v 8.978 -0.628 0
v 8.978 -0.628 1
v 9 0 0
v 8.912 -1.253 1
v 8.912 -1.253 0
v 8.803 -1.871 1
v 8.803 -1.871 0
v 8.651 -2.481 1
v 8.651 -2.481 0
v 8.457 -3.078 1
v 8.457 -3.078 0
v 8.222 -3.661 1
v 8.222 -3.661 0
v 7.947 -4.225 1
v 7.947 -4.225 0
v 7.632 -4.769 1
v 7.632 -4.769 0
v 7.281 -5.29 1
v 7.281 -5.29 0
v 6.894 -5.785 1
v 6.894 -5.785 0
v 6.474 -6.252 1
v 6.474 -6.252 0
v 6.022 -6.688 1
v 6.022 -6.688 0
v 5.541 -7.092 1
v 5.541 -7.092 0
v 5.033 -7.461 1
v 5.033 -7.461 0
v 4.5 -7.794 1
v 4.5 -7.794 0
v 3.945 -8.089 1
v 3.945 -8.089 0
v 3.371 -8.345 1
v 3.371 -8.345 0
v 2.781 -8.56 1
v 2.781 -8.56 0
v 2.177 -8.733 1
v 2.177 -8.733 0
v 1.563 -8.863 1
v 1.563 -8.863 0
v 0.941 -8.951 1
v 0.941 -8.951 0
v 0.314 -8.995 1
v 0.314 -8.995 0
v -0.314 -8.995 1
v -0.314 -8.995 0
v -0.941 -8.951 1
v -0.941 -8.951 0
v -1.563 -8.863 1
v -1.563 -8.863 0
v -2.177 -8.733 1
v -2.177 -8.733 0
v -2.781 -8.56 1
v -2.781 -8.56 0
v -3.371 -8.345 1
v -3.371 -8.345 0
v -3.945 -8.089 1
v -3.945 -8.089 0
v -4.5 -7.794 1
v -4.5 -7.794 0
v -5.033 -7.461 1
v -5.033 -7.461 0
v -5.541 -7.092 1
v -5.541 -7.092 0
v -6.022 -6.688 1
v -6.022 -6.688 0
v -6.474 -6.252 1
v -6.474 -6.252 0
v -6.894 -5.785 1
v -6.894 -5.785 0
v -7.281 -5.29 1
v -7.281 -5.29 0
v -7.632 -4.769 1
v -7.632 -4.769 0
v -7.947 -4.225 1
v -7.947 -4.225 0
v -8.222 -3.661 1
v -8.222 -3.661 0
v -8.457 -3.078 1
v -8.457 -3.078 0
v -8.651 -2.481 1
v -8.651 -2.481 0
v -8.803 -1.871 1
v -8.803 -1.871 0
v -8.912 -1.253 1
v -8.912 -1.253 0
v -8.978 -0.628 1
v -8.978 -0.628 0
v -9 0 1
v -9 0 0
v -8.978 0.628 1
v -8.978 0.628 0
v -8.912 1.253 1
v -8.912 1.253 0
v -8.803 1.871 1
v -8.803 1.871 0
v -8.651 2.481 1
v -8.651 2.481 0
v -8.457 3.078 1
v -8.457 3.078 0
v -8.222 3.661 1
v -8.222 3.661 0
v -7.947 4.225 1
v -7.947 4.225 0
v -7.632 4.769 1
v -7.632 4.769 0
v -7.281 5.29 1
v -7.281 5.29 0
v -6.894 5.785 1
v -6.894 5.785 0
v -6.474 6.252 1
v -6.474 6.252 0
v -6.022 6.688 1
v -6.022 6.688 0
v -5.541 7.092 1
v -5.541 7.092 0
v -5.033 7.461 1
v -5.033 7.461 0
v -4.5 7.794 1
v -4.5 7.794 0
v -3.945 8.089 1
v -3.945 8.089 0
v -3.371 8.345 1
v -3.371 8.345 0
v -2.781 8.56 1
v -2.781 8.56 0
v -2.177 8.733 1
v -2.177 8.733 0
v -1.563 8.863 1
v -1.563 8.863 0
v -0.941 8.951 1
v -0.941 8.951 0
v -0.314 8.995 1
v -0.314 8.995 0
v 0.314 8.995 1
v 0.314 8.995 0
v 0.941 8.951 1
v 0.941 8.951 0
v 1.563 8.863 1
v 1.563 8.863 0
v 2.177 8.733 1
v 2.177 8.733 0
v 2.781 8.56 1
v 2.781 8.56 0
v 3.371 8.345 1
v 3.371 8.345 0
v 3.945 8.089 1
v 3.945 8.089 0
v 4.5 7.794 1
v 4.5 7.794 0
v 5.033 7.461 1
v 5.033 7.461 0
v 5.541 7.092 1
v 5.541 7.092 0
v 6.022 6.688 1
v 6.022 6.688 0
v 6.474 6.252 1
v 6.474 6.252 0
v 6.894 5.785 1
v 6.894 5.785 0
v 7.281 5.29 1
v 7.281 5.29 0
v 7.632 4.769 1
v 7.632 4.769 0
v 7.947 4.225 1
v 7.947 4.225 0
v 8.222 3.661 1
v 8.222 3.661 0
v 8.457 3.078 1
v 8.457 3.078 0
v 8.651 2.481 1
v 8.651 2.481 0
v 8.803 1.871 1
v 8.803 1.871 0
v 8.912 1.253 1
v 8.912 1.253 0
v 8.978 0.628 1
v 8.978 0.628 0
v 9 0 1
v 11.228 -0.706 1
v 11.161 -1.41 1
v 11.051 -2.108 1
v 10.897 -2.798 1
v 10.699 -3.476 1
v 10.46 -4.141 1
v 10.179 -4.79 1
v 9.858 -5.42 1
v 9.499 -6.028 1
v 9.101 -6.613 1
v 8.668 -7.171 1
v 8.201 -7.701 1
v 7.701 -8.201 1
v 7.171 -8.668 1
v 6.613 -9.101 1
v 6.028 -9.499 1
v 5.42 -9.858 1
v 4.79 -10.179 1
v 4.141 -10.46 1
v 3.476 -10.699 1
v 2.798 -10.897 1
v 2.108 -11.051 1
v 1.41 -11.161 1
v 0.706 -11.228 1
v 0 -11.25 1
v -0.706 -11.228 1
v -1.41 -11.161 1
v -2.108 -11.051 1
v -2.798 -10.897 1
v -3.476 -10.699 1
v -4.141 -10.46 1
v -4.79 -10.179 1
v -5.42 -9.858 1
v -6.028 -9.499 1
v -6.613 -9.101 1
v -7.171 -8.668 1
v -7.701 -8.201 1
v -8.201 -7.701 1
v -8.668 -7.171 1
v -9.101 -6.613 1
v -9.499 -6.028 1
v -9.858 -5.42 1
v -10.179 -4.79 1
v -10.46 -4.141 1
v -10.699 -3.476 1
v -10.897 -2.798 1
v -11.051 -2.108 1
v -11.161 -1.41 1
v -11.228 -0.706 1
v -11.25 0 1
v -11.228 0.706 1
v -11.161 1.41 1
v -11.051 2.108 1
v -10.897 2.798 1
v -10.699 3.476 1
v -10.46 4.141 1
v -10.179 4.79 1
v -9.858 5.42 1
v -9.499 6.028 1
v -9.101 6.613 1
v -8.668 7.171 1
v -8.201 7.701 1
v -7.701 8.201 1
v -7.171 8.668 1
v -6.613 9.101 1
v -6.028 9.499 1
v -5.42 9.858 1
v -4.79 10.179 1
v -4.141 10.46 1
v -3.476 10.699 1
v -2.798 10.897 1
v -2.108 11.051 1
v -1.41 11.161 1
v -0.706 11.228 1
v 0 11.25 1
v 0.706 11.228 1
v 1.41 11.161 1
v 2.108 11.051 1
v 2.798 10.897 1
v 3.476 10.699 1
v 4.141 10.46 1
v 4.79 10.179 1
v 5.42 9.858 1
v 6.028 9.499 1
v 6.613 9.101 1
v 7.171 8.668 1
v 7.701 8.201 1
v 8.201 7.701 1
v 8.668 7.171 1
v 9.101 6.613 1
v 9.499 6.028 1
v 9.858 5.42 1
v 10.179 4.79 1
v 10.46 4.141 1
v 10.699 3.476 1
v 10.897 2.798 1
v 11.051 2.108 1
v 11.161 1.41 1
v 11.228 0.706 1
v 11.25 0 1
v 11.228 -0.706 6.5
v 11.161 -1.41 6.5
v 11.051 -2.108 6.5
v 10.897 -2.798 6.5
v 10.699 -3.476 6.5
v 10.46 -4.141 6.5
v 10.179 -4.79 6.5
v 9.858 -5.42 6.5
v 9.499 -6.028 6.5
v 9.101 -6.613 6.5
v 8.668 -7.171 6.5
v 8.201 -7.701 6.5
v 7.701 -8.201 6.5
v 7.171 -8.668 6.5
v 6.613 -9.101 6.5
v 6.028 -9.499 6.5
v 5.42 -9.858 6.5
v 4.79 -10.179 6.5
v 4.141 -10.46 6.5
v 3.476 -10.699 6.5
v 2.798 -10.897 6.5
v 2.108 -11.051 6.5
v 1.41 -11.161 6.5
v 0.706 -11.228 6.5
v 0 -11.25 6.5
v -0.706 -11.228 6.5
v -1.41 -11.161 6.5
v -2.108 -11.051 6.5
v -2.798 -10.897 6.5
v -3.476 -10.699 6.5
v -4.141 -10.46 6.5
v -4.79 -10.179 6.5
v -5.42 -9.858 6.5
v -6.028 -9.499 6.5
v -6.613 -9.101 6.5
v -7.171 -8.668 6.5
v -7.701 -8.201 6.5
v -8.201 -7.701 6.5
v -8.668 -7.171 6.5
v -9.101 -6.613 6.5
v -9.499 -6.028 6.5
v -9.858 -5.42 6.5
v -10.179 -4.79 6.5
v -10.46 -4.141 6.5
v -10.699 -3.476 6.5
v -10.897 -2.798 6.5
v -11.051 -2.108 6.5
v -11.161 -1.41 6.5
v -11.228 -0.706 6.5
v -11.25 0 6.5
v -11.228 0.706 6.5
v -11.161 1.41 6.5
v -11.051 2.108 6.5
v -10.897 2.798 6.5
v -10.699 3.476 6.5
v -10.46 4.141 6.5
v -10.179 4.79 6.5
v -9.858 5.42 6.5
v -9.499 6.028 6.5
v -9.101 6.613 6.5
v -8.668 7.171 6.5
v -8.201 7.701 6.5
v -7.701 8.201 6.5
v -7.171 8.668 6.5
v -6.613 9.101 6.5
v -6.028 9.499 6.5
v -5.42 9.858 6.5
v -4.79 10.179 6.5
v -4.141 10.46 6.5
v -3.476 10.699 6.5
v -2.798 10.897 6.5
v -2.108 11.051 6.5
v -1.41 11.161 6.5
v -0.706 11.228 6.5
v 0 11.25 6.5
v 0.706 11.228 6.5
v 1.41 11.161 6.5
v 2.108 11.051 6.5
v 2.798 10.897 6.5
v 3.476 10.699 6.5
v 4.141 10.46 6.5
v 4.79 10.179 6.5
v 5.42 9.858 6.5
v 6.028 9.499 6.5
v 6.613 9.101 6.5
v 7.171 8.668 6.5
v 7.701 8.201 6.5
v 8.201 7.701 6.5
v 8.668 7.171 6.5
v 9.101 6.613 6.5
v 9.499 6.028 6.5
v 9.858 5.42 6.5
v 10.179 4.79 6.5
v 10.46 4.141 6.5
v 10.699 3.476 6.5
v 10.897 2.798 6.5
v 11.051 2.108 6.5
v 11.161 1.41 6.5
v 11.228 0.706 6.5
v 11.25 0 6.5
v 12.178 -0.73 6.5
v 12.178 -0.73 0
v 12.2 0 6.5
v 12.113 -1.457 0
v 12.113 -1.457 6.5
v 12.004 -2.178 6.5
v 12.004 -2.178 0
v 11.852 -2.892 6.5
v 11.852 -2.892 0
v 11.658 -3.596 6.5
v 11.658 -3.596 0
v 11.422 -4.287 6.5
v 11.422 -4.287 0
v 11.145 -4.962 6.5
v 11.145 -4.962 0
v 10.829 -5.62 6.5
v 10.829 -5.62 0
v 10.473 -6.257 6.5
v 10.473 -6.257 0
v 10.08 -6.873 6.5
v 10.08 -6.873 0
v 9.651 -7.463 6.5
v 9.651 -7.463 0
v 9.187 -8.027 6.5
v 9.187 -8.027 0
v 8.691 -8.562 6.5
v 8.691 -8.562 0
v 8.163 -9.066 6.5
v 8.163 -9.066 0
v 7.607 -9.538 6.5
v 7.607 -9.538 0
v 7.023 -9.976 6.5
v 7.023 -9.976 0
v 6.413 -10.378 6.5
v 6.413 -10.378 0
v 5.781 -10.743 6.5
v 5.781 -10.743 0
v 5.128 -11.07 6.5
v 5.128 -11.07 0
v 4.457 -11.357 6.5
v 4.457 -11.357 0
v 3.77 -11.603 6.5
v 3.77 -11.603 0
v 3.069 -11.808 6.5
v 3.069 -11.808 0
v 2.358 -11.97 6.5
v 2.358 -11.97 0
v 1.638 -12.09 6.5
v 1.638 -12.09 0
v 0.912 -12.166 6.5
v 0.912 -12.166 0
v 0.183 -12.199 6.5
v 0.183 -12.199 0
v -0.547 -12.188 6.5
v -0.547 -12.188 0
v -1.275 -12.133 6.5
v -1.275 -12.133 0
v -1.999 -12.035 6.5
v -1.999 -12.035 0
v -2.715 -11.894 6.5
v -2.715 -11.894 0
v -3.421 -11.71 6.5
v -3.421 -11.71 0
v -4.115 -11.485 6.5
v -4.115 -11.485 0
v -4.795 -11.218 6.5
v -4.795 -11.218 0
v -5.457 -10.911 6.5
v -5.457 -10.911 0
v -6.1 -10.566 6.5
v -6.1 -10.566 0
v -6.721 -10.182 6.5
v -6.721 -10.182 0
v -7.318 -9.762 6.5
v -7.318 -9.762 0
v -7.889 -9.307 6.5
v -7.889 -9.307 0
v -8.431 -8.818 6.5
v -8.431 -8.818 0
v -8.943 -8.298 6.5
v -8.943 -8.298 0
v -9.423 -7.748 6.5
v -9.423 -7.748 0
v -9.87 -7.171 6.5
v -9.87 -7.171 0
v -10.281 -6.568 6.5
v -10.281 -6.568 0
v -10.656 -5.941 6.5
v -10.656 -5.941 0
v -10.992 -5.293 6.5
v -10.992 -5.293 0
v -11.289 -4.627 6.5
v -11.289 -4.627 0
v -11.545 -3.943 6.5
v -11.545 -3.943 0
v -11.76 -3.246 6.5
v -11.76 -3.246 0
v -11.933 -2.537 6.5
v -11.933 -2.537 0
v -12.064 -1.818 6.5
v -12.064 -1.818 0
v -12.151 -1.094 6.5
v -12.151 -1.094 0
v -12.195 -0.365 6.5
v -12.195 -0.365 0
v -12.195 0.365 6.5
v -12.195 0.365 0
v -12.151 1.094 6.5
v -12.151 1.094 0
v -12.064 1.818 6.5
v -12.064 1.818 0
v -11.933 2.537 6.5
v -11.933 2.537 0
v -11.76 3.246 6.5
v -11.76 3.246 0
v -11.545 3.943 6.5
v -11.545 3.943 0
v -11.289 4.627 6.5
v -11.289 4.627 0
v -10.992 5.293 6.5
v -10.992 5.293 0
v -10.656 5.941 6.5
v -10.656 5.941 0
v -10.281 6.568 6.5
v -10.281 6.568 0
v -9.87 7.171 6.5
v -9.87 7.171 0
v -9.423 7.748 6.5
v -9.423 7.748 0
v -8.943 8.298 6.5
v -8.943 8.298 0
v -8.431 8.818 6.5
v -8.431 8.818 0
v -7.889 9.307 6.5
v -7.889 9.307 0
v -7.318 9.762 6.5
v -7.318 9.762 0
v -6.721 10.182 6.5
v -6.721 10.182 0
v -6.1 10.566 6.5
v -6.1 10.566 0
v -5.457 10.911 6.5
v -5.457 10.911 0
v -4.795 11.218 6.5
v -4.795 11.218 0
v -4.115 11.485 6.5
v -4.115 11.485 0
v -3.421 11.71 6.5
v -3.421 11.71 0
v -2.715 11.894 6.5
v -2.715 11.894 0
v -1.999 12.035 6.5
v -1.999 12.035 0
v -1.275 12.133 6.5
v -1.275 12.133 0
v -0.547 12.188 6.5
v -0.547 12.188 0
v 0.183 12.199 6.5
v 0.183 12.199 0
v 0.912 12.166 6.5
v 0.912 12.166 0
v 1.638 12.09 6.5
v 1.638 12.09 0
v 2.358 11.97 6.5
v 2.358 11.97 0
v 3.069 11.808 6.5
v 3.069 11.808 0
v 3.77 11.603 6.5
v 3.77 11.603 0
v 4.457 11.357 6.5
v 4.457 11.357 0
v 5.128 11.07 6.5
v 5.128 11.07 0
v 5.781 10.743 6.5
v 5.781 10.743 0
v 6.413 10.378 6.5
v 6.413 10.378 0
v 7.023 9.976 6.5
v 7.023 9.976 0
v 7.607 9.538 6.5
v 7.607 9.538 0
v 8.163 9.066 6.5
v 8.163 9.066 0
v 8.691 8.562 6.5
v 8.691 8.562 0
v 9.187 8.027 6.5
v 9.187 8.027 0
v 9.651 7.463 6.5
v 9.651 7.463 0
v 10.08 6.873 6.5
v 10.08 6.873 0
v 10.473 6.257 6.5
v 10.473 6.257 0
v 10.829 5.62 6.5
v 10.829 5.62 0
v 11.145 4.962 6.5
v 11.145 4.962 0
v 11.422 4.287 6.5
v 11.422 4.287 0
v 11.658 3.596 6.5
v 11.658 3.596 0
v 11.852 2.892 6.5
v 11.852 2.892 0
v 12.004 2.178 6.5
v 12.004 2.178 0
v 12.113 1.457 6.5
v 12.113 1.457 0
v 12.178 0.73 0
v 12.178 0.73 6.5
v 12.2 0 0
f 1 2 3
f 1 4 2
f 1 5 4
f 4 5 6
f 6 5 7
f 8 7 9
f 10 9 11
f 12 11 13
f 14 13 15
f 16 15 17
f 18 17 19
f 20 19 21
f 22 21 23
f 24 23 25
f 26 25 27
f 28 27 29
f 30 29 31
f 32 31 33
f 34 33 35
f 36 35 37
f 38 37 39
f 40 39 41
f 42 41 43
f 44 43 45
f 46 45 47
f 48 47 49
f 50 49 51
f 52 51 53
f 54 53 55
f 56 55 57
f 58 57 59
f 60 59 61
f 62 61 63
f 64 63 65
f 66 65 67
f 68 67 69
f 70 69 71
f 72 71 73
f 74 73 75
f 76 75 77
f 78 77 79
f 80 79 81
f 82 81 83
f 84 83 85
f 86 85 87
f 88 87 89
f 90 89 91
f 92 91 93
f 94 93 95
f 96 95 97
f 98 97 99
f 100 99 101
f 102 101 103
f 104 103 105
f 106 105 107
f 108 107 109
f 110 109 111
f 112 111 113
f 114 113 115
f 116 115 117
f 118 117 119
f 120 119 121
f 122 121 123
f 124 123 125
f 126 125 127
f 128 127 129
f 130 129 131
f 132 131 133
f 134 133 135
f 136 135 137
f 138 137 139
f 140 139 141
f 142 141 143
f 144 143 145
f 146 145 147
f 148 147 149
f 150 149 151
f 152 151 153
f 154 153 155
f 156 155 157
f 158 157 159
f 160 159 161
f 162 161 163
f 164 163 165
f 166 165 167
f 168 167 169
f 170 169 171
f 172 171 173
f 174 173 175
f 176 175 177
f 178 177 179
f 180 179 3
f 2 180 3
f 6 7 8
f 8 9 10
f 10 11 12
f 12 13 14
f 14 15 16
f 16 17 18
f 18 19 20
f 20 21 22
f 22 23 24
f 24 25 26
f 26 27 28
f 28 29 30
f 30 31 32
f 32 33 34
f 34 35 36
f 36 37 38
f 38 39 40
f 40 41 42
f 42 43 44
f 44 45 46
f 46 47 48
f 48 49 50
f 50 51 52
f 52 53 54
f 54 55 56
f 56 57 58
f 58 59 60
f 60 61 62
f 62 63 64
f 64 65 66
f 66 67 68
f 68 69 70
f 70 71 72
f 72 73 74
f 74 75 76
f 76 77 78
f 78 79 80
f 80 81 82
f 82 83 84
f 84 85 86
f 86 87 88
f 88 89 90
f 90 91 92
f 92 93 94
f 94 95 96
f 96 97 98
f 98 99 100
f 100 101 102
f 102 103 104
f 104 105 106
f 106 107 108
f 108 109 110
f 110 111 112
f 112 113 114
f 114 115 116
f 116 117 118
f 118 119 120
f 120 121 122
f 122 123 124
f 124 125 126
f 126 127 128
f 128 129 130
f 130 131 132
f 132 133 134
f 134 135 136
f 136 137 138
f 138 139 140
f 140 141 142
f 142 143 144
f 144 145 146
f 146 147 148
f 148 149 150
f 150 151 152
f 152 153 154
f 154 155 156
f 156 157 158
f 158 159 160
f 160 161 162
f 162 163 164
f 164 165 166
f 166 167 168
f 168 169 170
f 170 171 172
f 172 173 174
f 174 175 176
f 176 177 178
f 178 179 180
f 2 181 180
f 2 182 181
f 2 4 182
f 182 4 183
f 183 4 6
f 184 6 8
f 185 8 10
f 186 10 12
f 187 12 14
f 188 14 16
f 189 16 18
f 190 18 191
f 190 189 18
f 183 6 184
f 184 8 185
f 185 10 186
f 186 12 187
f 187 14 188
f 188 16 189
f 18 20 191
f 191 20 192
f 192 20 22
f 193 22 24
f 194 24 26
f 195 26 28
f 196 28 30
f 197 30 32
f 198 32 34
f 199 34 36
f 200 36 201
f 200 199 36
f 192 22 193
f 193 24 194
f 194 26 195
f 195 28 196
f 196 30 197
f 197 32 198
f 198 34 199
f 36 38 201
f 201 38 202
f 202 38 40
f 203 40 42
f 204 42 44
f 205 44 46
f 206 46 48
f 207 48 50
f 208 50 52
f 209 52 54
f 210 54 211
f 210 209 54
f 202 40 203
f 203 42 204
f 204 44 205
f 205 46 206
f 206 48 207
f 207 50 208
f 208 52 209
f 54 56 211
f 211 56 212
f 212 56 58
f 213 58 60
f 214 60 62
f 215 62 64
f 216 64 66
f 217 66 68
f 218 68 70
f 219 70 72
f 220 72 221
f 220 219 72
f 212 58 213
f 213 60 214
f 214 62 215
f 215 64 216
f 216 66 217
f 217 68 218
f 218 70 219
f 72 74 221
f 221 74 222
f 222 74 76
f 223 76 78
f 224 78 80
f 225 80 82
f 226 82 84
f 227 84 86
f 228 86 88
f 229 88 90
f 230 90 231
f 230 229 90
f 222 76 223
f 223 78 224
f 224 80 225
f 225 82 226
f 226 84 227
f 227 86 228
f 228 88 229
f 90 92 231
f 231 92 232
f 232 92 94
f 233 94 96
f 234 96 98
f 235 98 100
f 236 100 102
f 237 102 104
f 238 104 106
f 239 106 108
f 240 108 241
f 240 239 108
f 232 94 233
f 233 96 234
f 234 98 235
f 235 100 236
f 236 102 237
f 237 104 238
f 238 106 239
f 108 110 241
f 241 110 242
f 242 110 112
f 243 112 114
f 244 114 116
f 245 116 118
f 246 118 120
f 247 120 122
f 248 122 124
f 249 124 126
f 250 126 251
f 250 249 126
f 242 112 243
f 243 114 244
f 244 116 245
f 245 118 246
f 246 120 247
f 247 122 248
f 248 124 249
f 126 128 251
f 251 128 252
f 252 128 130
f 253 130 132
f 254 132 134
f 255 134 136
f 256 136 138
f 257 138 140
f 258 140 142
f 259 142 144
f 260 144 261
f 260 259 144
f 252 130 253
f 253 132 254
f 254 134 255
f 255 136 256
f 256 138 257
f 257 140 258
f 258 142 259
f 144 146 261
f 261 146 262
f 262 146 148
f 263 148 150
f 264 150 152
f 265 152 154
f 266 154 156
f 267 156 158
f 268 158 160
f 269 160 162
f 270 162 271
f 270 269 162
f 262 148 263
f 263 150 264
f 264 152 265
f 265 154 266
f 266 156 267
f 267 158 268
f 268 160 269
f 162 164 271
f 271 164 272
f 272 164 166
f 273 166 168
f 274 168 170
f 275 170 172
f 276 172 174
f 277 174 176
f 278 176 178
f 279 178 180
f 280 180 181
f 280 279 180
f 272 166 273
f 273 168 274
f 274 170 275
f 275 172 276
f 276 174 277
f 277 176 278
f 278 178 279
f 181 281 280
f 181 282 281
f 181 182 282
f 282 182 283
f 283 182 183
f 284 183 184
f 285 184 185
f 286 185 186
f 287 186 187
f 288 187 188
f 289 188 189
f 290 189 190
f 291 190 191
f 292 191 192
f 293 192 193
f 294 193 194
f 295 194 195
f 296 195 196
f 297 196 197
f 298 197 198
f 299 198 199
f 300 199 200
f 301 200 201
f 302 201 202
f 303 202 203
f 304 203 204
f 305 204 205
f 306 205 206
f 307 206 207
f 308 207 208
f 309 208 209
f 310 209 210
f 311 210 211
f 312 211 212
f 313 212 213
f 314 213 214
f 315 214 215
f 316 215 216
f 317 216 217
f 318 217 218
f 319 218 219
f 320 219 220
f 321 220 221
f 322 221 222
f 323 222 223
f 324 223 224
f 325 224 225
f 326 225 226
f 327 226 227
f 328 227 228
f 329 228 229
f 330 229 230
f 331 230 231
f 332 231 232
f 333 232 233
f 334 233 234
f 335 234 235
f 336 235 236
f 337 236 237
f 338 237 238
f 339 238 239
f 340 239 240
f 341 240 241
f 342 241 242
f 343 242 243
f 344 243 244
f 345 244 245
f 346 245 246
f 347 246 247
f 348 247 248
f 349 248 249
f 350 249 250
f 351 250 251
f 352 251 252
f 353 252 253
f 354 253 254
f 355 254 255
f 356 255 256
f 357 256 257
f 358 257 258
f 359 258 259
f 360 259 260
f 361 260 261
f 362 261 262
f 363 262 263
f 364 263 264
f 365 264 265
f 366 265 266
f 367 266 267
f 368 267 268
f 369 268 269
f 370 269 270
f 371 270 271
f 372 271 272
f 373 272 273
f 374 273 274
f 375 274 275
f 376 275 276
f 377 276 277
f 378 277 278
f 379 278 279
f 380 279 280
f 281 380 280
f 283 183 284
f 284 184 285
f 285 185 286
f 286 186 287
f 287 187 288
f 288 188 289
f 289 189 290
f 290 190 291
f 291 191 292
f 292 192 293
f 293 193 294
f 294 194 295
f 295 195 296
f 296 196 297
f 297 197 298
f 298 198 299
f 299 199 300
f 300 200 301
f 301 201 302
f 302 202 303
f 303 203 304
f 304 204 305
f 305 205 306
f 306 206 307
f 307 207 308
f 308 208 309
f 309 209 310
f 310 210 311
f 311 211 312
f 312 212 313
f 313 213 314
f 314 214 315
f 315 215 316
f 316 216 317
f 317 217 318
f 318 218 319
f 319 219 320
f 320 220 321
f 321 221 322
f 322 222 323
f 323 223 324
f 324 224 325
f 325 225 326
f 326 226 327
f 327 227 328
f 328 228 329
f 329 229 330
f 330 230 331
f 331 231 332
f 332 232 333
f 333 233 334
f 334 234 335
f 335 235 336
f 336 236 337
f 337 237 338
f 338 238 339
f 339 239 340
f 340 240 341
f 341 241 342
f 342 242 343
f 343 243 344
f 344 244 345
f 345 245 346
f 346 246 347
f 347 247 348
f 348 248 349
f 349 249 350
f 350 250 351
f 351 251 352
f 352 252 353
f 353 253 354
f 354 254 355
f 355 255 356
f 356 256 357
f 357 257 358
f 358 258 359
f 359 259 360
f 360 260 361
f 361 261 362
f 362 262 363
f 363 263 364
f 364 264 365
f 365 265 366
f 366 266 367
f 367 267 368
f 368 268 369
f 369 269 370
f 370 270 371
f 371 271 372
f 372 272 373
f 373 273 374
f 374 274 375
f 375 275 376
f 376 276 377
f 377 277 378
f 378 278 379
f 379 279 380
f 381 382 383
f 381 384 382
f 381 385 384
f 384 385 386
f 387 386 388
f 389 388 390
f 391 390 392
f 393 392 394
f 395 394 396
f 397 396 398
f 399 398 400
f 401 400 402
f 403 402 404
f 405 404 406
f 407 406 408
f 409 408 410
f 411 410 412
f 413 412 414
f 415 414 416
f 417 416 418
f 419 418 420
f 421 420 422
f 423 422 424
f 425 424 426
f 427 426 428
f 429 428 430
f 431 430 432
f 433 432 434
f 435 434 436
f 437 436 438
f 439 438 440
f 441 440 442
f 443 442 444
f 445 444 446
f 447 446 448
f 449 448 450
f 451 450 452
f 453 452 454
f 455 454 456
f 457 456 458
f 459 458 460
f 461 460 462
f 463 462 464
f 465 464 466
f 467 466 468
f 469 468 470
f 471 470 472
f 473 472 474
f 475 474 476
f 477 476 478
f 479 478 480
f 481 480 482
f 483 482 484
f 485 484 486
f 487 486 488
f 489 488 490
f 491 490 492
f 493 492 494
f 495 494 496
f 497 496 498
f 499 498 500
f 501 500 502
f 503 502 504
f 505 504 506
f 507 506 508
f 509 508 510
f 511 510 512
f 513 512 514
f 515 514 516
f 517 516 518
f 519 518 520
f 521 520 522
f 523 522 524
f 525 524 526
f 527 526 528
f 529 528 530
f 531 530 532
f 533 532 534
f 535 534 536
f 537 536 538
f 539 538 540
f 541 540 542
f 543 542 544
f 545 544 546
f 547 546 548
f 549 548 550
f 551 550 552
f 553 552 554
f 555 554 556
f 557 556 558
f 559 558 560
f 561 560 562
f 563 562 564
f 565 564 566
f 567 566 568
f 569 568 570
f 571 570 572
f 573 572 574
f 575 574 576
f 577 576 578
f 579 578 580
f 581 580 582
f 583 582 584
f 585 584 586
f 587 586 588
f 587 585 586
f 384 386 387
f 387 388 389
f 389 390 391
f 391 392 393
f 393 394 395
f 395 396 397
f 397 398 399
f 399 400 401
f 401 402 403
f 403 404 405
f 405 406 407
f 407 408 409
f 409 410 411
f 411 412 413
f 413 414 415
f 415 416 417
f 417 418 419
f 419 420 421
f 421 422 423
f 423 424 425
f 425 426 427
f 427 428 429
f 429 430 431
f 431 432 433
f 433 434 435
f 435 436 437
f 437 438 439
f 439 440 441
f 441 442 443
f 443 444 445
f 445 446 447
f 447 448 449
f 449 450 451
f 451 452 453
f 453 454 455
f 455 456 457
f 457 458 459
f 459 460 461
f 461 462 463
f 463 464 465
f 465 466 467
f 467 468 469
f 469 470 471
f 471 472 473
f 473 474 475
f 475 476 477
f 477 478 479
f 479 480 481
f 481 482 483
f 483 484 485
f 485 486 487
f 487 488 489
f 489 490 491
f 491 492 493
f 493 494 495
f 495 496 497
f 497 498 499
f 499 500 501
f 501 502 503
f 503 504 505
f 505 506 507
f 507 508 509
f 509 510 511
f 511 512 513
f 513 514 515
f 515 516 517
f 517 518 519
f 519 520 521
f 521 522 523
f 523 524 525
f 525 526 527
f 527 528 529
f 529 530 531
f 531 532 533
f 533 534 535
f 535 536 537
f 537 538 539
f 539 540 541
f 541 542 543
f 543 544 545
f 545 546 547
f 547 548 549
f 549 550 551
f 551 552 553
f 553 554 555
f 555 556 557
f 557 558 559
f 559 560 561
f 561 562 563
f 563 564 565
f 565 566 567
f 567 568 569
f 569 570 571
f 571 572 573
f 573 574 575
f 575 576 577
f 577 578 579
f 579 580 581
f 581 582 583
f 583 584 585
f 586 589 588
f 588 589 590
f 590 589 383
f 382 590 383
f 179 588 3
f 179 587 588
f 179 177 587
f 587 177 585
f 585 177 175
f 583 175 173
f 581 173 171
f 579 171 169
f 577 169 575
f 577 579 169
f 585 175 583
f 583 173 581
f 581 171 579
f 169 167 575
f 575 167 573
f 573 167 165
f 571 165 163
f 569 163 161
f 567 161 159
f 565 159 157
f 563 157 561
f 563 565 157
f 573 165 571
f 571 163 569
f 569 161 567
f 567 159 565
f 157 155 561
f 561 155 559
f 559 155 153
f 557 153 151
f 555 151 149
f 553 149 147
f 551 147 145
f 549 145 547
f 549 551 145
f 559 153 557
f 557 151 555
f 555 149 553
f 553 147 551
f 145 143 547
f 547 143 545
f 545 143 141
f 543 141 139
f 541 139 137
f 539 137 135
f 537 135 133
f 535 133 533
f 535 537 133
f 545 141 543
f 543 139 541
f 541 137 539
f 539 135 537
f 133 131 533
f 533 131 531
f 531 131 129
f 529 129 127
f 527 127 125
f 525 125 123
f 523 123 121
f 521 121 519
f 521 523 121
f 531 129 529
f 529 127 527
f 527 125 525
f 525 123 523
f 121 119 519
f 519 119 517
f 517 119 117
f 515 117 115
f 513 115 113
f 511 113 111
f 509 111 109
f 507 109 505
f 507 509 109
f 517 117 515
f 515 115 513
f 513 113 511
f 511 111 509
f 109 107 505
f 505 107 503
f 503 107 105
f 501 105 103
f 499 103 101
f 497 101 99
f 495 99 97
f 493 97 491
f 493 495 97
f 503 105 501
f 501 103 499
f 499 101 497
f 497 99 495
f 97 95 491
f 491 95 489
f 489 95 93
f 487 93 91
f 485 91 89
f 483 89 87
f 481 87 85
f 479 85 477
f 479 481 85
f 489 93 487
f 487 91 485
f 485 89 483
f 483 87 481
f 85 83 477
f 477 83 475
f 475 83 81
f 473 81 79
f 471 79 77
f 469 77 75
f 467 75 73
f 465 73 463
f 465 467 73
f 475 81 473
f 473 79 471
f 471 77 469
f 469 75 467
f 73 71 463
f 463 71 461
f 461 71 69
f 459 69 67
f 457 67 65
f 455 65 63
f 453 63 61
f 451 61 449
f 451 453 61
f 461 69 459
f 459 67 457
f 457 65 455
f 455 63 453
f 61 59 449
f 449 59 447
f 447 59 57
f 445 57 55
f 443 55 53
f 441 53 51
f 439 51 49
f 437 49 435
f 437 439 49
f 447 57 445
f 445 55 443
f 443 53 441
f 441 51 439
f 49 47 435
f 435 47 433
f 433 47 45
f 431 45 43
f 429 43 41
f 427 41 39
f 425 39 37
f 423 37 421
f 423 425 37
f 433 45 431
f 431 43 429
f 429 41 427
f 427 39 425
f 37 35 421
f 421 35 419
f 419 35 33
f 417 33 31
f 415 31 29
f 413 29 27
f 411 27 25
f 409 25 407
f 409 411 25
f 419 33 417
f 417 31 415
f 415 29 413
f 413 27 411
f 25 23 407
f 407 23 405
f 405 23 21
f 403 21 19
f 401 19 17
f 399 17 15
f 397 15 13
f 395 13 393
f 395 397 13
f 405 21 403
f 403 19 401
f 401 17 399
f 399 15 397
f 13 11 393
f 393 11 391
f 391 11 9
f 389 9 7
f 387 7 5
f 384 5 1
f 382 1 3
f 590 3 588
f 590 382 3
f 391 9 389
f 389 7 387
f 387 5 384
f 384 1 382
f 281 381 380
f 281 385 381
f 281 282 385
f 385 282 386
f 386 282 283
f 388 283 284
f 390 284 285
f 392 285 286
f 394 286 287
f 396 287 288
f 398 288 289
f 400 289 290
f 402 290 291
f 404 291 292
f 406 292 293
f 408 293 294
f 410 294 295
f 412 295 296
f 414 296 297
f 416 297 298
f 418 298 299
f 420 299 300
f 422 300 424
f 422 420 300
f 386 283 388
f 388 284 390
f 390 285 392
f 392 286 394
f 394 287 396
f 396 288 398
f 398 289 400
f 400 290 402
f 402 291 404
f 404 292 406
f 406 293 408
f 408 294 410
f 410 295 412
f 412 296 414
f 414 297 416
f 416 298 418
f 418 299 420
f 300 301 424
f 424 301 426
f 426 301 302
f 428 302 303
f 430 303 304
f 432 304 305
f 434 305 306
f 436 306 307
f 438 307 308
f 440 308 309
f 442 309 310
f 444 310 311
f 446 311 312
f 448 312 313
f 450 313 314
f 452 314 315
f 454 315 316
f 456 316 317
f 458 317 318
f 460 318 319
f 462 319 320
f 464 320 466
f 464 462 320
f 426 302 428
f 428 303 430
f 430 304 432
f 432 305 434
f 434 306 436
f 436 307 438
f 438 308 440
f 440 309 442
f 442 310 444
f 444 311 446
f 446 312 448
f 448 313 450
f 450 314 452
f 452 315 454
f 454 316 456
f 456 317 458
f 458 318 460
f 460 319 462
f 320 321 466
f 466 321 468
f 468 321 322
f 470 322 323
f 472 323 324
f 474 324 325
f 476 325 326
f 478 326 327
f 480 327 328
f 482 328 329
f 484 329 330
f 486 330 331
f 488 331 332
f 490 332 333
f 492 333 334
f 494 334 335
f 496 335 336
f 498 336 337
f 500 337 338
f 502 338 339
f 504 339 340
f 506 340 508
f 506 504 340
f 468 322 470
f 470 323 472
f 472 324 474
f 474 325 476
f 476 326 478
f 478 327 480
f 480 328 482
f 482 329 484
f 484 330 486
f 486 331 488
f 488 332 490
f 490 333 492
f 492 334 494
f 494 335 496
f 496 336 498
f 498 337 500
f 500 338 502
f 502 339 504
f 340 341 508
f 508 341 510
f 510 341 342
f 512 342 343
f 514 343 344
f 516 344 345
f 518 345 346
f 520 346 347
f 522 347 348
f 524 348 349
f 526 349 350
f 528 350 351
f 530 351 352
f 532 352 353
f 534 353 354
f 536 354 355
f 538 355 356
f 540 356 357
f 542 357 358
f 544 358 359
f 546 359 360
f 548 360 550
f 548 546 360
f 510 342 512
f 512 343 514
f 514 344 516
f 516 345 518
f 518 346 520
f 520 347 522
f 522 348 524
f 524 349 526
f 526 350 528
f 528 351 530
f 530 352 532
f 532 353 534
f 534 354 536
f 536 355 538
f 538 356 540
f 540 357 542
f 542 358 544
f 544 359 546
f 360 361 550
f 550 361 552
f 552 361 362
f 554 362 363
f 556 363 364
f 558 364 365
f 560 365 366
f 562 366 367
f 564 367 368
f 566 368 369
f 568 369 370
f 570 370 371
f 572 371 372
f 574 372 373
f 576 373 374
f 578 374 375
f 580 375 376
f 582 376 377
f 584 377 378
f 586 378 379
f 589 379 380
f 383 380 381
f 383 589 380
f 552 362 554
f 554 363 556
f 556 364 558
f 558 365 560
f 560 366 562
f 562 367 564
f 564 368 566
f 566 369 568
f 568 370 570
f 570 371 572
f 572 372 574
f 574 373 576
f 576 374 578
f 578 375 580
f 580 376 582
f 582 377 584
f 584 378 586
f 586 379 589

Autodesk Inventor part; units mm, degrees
ref_plane "YZ Plane" through (0, 0, 0) normal (1, 0, 0) x (0, 1, 0)
ref_plane "XZ Plane" through (0, 0, 0) normal (0, 1, 0) x (-1, 0, 0)
ref_plane "XY Plane" through (0, 0, 0) normal (0, 0, 1) x (1, 0, 0)
sketch "Sketch1" plane through (0, 0, 0) normal (0, 0, 1) x (1, 0, 0)
  circle A0 centre (0, 0) radius 11.25
  circle A1 centre (0, 0) radius 12.2
  dimension "d0" = 22.5
  dimension "d1" = 24.4
extrude "Extrusion1" add sketch "Sketch1" along normal blind 6.5
sketch "Sketch2" plane through (0, 0, 0) normal (0, 0, 1) x (1, 0, 0)
  circle A0 centre (0, 0) radius 11.25
  dimension "d4" = 22.5
extrude "Extrusion2" add sketch "Sketch2" along normal blind 1
sketch "Sketch3" plane through (0, 0, 1) normal (0, 0, 1) x (1, 0, 0)
  circle A0 centre (0, 0) radius 9
  dimension "d7" = 18
extrude "Extrusion3" cut sketch "Sketch3" against normal blind 1
properties part number "HubTest22mm"
